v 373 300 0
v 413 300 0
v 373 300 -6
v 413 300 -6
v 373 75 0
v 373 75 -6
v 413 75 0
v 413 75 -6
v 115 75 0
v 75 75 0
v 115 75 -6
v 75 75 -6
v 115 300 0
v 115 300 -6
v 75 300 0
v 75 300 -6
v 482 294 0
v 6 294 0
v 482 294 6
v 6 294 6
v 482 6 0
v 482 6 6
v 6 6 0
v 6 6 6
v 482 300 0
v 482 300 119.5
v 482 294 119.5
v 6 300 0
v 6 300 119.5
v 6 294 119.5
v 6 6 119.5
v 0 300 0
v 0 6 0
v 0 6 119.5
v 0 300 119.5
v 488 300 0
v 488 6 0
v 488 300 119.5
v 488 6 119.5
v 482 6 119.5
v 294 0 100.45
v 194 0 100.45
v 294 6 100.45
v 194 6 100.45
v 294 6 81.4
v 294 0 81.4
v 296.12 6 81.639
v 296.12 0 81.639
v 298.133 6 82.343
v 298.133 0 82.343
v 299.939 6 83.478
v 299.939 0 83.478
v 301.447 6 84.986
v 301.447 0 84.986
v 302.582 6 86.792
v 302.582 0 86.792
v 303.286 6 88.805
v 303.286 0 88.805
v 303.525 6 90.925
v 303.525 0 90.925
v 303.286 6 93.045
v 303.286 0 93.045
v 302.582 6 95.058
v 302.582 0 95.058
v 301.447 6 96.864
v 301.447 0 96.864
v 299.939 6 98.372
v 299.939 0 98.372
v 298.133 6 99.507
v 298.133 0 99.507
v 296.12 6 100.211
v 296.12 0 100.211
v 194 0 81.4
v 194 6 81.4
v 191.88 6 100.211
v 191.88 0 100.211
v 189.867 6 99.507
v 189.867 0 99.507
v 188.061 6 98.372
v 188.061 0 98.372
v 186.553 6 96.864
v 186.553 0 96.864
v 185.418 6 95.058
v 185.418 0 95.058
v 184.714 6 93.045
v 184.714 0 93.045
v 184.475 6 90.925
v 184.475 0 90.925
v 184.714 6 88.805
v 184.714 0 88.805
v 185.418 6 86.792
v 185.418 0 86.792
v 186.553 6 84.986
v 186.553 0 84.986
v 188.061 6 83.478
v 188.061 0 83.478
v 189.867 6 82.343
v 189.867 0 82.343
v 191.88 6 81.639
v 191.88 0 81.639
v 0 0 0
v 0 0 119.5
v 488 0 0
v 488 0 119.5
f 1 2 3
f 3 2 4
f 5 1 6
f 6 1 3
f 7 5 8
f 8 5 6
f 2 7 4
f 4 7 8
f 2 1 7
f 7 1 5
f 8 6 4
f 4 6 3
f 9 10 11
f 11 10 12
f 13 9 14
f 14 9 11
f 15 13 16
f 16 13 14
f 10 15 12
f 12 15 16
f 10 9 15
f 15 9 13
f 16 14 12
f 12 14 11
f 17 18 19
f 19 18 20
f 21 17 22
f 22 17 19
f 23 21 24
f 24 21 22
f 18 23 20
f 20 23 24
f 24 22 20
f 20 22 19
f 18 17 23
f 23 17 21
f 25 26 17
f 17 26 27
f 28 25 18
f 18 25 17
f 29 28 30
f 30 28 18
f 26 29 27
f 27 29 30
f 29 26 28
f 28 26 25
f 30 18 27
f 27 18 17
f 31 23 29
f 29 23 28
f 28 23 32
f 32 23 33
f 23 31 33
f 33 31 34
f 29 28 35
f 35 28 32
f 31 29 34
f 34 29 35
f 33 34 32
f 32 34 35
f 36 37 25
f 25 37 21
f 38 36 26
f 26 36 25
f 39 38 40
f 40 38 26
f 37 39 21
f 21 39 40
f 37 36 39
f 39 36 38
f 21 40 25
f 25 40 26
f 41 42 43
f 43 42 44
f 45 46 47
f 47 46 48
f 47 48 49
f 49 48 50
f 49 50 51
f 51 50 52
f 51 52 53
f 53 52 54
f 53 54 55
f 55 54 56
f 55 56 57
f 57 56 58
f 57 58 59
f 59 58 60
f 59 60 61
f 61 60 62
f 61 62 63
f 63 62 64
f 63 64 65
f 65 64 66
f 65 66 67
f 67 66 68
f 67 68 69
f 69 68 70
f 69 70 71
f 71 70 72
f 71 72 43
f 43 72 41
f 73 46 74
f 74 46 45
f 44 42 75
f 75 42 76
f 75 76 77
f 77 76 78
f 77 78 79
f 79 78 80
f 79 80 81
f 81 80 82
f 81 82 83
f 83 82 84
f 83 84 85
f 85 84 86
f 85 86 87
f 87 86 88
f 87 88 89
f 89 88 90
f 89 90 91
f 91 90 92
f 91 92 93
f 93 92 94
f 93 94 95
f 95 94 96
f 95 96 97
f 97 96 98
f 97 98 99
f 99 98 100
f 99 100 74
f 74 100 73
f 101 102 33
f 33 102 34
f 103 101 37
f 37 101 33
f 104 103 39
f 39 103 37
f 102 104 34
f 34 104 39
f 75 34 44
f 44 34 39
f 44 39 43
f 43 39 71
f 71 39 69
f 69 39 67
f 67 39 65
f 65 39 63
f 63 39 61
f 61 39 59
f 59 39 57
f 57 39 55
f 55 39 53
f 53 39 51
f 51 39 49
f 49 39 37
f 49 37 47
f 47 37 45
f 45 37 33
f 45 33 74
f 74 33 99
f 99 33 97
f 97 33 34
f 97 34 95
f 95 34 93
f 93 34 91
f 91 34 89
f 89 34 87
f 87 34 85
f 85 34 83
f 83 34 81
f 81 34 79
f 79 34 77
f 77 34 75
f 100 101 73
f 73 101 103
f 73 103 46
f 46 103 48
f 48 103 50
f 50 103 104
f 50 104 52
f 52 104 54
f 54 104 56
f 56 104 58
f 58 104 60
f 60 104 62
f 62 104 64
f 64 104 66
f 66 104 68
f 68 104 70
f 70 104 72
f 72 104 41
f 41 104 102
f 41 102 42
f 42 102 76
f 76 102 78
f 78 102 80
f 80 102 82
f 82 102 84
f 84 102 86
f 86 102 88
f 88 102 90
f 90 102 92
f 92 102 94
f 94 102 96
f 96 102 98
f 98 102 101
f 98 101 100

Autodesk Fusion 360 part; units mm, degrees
sketch "Sketch1" plane through (0, 0, 0) normal (0, 1, 0) x (1, 0, 0) in component "box"
  line L0 (0, 0) -> (488, 0)
  line L1 (488, 0) -> (488, -119.5)
  line L2 (488, -119.5) -> (0, -119.5)
  line L3 (0, -119.5) -> (0, 0)
  line L4 (194, -100.45) -> (294, -100.45)
  arc A0 (294, -100.45) -> (294, -81.4) centre (294, -90.925) ccw
  line L5 (294, -81.4) -> (194, -81.4)
  arc A1 (194, -81.4) -> (194, -100.45) centre (194, -90.925) ccw
  line L6 (294, -90.925) -> (488, -90.925) construction
  line L7 (194, -90.925) -> (0, -90.925) construction
  dimension "d9" = 119.5
  dimension "d10" = 488
  dimension "d11" = 19.05
  dimension "d12" = 100
  dimension "d13" = 19.05
extrude "Extrude1" add sketch "Sketch1" along normal blind 6 makes body 1 in component "box"
sketch "Sketch2" plane through (488, 0, 0) normal (1, 0, 0) x (0, 1, 0) in component "box"
  line L0 (0, 119.5) -> (0, 0)
  line L1 (0, 0) -> (6, 0)
  line L2 (6, 0) -> (6, 119.5)
  line L3 (6, 119.5) -> (0, 119.5)
  line L4 (6, 0) -> (300, 0)
  line L5 (300, 0) -> (300, 119.5)
  line L6 (300, 119.5) -> (6, 119.5)
  line L7 (6, 119.5) -> (6, 0)
  dimension "d16" = 294
  dimension "d17" = 119.5
extrude "Extrude2" add sketch "Sketch2" against normal blind 6 separate body contours L2 L4 L5 L6 L7 makes body 2 in component "box"
extrude "Extrude3" add sketch "Sketch2" along normal blind -488 and the other way blind 482 separate body contours L2 L4 L5 L6 L7 makes body 3 in component "box"
sketch "Sketch3" plane through (0, 300, 0) normal (0, 1, 0) x (-1, 0, 0) in component "box"
  line L0 (-6, 119.5) -> (-6, 0)
  line L1 (-6, 0) -> (0, 0)
  line L2 (0, 0) -> (0, 119.5)
  line L3 (0, 119.5) -> (-6, 119.5)
  line L4 (0, 0) -> (-6, 0) construction
  line L5 (-6, 0) -> (-482, 0)
  line L6 (-482, 0) -> (-482, 119.5)
  line L7 (-482, 119.5) -> (-6, 119.5)
  line L8 (-6, 119.5) -> (-6, 0)
  dimension "d24" = 6
  dimension "d25" = 476
  dimension "d26" = 119.5
extrude "Extrude4" add sketch "Sketch3" against normal blind 6 separate body contours L0 L5 L6 L7 L8 makes body 4 in component "box"
sketch "Sketch4" plane through (0, 0, 0) normal (0, 0, 1) x (1, 0, 0) in component "box"
  line L0 (0, 0) -> (6, 6) construction
  line L1 (0, 0) -> (9.1956, 0) construction
  line L2 (6, 6) -> (482, 6)
  line L3 (482, 6) -> (482, 294)
  line L4 (482, 294) -> (6, 294)
  line L5 (6, 294) -> (6, 6)
  dimension "d29" = 45
  dimension "d30" = 6
  dimension "d31" = 476
  dimension "d32" = 288
extrude "Extrude5" add sketch "Sketch4" along normal blind 6 separate body makes body 5 in component "box"
sketch "Sketch5" plane through (0, 0, 0) normal (0, 0, 1) x (1, 0, 0) in component "box"
  line L0 (75, 75) -> (115, 75)
  line L1 (115, 75) -> (115, 300)
  line L2 (115, 300) -> (75, 300)
  line L3 (75, 300) -> (75, 75)
  line L4 (413, 300) -> (373, 300)
  line L5 (373, 300) -> (373, 75)
  line L6 (373, 75) -> (413, 75)
  line L7 (413, 75) -> (413, 300)
  line L8 (0, 0) -> (488, 0) construction
  dimension "d35" = 40
  dimension "d36" = 225
  dimension "d37" = 40
  dimension "d38" = 225
  dimension "d40" = 75
  dimension "d41" = 75
  dimension "d42" = 488
  dimension "d43" = 75
  dimension "d44" = 75
extrude "Extrude6" add sketch "Sketch5" against normal blind 6 separate body makes body 6 at (88.3333, 225, 0) makes body 7 at (386.3333, 225, 0) in component "box"
component "box" placed x (1, 0, 0) y (0, 1, 0) z (0, 0, 1) at (0, 0, 0)
equation "thickness = 6 mm"
equation "width = 500 mm - ( 2 * thickness )"
equation "height = 131.5 mm - ( 2 * thickness )"
equation "depth = 300 mm"
equation "forstner = 1 in * 0.75"
equation "handle_width = 100 mm"
equation "skate_offset = depth / 4"
equation "d9 = height"
equation "d10 = width"
equation "d11 = forstner"
equation "d12 = handle_width"
equation "d13 = forstner"
equation "d14 = thickness"
equation "d16 = depth - thickness"
equation "d17 = height"
equation "d18 = -thickness"
equation "d20 = -width"
equation "d22 = width - thickness"
equation "d24 = thickness"
equation "d25 = width - ( 2 * thickness )"
equation "d26 = height"
equation "d27 = -thickness"
equation "d30 = thickness"
equation "d31 = width - ( 2 * thickness )"
equation "d32 = depth - ( 2 * thickness )"
equation "d33 = thickness"
equation "d35 = skate_width"
equation "d36 = depth - skate_offset"
equation "d37 = skate_width"
equation "d38 = depth - skate_offset"
equation "skate_width = 40 mm"
equation "d40 = skate_offset"
equation "d41 = skate_offset"
equation "d42 = width"
equation "d43 = skate_offset"
equation "d44 = skate_offset"
equation "d45 = -thickness"
